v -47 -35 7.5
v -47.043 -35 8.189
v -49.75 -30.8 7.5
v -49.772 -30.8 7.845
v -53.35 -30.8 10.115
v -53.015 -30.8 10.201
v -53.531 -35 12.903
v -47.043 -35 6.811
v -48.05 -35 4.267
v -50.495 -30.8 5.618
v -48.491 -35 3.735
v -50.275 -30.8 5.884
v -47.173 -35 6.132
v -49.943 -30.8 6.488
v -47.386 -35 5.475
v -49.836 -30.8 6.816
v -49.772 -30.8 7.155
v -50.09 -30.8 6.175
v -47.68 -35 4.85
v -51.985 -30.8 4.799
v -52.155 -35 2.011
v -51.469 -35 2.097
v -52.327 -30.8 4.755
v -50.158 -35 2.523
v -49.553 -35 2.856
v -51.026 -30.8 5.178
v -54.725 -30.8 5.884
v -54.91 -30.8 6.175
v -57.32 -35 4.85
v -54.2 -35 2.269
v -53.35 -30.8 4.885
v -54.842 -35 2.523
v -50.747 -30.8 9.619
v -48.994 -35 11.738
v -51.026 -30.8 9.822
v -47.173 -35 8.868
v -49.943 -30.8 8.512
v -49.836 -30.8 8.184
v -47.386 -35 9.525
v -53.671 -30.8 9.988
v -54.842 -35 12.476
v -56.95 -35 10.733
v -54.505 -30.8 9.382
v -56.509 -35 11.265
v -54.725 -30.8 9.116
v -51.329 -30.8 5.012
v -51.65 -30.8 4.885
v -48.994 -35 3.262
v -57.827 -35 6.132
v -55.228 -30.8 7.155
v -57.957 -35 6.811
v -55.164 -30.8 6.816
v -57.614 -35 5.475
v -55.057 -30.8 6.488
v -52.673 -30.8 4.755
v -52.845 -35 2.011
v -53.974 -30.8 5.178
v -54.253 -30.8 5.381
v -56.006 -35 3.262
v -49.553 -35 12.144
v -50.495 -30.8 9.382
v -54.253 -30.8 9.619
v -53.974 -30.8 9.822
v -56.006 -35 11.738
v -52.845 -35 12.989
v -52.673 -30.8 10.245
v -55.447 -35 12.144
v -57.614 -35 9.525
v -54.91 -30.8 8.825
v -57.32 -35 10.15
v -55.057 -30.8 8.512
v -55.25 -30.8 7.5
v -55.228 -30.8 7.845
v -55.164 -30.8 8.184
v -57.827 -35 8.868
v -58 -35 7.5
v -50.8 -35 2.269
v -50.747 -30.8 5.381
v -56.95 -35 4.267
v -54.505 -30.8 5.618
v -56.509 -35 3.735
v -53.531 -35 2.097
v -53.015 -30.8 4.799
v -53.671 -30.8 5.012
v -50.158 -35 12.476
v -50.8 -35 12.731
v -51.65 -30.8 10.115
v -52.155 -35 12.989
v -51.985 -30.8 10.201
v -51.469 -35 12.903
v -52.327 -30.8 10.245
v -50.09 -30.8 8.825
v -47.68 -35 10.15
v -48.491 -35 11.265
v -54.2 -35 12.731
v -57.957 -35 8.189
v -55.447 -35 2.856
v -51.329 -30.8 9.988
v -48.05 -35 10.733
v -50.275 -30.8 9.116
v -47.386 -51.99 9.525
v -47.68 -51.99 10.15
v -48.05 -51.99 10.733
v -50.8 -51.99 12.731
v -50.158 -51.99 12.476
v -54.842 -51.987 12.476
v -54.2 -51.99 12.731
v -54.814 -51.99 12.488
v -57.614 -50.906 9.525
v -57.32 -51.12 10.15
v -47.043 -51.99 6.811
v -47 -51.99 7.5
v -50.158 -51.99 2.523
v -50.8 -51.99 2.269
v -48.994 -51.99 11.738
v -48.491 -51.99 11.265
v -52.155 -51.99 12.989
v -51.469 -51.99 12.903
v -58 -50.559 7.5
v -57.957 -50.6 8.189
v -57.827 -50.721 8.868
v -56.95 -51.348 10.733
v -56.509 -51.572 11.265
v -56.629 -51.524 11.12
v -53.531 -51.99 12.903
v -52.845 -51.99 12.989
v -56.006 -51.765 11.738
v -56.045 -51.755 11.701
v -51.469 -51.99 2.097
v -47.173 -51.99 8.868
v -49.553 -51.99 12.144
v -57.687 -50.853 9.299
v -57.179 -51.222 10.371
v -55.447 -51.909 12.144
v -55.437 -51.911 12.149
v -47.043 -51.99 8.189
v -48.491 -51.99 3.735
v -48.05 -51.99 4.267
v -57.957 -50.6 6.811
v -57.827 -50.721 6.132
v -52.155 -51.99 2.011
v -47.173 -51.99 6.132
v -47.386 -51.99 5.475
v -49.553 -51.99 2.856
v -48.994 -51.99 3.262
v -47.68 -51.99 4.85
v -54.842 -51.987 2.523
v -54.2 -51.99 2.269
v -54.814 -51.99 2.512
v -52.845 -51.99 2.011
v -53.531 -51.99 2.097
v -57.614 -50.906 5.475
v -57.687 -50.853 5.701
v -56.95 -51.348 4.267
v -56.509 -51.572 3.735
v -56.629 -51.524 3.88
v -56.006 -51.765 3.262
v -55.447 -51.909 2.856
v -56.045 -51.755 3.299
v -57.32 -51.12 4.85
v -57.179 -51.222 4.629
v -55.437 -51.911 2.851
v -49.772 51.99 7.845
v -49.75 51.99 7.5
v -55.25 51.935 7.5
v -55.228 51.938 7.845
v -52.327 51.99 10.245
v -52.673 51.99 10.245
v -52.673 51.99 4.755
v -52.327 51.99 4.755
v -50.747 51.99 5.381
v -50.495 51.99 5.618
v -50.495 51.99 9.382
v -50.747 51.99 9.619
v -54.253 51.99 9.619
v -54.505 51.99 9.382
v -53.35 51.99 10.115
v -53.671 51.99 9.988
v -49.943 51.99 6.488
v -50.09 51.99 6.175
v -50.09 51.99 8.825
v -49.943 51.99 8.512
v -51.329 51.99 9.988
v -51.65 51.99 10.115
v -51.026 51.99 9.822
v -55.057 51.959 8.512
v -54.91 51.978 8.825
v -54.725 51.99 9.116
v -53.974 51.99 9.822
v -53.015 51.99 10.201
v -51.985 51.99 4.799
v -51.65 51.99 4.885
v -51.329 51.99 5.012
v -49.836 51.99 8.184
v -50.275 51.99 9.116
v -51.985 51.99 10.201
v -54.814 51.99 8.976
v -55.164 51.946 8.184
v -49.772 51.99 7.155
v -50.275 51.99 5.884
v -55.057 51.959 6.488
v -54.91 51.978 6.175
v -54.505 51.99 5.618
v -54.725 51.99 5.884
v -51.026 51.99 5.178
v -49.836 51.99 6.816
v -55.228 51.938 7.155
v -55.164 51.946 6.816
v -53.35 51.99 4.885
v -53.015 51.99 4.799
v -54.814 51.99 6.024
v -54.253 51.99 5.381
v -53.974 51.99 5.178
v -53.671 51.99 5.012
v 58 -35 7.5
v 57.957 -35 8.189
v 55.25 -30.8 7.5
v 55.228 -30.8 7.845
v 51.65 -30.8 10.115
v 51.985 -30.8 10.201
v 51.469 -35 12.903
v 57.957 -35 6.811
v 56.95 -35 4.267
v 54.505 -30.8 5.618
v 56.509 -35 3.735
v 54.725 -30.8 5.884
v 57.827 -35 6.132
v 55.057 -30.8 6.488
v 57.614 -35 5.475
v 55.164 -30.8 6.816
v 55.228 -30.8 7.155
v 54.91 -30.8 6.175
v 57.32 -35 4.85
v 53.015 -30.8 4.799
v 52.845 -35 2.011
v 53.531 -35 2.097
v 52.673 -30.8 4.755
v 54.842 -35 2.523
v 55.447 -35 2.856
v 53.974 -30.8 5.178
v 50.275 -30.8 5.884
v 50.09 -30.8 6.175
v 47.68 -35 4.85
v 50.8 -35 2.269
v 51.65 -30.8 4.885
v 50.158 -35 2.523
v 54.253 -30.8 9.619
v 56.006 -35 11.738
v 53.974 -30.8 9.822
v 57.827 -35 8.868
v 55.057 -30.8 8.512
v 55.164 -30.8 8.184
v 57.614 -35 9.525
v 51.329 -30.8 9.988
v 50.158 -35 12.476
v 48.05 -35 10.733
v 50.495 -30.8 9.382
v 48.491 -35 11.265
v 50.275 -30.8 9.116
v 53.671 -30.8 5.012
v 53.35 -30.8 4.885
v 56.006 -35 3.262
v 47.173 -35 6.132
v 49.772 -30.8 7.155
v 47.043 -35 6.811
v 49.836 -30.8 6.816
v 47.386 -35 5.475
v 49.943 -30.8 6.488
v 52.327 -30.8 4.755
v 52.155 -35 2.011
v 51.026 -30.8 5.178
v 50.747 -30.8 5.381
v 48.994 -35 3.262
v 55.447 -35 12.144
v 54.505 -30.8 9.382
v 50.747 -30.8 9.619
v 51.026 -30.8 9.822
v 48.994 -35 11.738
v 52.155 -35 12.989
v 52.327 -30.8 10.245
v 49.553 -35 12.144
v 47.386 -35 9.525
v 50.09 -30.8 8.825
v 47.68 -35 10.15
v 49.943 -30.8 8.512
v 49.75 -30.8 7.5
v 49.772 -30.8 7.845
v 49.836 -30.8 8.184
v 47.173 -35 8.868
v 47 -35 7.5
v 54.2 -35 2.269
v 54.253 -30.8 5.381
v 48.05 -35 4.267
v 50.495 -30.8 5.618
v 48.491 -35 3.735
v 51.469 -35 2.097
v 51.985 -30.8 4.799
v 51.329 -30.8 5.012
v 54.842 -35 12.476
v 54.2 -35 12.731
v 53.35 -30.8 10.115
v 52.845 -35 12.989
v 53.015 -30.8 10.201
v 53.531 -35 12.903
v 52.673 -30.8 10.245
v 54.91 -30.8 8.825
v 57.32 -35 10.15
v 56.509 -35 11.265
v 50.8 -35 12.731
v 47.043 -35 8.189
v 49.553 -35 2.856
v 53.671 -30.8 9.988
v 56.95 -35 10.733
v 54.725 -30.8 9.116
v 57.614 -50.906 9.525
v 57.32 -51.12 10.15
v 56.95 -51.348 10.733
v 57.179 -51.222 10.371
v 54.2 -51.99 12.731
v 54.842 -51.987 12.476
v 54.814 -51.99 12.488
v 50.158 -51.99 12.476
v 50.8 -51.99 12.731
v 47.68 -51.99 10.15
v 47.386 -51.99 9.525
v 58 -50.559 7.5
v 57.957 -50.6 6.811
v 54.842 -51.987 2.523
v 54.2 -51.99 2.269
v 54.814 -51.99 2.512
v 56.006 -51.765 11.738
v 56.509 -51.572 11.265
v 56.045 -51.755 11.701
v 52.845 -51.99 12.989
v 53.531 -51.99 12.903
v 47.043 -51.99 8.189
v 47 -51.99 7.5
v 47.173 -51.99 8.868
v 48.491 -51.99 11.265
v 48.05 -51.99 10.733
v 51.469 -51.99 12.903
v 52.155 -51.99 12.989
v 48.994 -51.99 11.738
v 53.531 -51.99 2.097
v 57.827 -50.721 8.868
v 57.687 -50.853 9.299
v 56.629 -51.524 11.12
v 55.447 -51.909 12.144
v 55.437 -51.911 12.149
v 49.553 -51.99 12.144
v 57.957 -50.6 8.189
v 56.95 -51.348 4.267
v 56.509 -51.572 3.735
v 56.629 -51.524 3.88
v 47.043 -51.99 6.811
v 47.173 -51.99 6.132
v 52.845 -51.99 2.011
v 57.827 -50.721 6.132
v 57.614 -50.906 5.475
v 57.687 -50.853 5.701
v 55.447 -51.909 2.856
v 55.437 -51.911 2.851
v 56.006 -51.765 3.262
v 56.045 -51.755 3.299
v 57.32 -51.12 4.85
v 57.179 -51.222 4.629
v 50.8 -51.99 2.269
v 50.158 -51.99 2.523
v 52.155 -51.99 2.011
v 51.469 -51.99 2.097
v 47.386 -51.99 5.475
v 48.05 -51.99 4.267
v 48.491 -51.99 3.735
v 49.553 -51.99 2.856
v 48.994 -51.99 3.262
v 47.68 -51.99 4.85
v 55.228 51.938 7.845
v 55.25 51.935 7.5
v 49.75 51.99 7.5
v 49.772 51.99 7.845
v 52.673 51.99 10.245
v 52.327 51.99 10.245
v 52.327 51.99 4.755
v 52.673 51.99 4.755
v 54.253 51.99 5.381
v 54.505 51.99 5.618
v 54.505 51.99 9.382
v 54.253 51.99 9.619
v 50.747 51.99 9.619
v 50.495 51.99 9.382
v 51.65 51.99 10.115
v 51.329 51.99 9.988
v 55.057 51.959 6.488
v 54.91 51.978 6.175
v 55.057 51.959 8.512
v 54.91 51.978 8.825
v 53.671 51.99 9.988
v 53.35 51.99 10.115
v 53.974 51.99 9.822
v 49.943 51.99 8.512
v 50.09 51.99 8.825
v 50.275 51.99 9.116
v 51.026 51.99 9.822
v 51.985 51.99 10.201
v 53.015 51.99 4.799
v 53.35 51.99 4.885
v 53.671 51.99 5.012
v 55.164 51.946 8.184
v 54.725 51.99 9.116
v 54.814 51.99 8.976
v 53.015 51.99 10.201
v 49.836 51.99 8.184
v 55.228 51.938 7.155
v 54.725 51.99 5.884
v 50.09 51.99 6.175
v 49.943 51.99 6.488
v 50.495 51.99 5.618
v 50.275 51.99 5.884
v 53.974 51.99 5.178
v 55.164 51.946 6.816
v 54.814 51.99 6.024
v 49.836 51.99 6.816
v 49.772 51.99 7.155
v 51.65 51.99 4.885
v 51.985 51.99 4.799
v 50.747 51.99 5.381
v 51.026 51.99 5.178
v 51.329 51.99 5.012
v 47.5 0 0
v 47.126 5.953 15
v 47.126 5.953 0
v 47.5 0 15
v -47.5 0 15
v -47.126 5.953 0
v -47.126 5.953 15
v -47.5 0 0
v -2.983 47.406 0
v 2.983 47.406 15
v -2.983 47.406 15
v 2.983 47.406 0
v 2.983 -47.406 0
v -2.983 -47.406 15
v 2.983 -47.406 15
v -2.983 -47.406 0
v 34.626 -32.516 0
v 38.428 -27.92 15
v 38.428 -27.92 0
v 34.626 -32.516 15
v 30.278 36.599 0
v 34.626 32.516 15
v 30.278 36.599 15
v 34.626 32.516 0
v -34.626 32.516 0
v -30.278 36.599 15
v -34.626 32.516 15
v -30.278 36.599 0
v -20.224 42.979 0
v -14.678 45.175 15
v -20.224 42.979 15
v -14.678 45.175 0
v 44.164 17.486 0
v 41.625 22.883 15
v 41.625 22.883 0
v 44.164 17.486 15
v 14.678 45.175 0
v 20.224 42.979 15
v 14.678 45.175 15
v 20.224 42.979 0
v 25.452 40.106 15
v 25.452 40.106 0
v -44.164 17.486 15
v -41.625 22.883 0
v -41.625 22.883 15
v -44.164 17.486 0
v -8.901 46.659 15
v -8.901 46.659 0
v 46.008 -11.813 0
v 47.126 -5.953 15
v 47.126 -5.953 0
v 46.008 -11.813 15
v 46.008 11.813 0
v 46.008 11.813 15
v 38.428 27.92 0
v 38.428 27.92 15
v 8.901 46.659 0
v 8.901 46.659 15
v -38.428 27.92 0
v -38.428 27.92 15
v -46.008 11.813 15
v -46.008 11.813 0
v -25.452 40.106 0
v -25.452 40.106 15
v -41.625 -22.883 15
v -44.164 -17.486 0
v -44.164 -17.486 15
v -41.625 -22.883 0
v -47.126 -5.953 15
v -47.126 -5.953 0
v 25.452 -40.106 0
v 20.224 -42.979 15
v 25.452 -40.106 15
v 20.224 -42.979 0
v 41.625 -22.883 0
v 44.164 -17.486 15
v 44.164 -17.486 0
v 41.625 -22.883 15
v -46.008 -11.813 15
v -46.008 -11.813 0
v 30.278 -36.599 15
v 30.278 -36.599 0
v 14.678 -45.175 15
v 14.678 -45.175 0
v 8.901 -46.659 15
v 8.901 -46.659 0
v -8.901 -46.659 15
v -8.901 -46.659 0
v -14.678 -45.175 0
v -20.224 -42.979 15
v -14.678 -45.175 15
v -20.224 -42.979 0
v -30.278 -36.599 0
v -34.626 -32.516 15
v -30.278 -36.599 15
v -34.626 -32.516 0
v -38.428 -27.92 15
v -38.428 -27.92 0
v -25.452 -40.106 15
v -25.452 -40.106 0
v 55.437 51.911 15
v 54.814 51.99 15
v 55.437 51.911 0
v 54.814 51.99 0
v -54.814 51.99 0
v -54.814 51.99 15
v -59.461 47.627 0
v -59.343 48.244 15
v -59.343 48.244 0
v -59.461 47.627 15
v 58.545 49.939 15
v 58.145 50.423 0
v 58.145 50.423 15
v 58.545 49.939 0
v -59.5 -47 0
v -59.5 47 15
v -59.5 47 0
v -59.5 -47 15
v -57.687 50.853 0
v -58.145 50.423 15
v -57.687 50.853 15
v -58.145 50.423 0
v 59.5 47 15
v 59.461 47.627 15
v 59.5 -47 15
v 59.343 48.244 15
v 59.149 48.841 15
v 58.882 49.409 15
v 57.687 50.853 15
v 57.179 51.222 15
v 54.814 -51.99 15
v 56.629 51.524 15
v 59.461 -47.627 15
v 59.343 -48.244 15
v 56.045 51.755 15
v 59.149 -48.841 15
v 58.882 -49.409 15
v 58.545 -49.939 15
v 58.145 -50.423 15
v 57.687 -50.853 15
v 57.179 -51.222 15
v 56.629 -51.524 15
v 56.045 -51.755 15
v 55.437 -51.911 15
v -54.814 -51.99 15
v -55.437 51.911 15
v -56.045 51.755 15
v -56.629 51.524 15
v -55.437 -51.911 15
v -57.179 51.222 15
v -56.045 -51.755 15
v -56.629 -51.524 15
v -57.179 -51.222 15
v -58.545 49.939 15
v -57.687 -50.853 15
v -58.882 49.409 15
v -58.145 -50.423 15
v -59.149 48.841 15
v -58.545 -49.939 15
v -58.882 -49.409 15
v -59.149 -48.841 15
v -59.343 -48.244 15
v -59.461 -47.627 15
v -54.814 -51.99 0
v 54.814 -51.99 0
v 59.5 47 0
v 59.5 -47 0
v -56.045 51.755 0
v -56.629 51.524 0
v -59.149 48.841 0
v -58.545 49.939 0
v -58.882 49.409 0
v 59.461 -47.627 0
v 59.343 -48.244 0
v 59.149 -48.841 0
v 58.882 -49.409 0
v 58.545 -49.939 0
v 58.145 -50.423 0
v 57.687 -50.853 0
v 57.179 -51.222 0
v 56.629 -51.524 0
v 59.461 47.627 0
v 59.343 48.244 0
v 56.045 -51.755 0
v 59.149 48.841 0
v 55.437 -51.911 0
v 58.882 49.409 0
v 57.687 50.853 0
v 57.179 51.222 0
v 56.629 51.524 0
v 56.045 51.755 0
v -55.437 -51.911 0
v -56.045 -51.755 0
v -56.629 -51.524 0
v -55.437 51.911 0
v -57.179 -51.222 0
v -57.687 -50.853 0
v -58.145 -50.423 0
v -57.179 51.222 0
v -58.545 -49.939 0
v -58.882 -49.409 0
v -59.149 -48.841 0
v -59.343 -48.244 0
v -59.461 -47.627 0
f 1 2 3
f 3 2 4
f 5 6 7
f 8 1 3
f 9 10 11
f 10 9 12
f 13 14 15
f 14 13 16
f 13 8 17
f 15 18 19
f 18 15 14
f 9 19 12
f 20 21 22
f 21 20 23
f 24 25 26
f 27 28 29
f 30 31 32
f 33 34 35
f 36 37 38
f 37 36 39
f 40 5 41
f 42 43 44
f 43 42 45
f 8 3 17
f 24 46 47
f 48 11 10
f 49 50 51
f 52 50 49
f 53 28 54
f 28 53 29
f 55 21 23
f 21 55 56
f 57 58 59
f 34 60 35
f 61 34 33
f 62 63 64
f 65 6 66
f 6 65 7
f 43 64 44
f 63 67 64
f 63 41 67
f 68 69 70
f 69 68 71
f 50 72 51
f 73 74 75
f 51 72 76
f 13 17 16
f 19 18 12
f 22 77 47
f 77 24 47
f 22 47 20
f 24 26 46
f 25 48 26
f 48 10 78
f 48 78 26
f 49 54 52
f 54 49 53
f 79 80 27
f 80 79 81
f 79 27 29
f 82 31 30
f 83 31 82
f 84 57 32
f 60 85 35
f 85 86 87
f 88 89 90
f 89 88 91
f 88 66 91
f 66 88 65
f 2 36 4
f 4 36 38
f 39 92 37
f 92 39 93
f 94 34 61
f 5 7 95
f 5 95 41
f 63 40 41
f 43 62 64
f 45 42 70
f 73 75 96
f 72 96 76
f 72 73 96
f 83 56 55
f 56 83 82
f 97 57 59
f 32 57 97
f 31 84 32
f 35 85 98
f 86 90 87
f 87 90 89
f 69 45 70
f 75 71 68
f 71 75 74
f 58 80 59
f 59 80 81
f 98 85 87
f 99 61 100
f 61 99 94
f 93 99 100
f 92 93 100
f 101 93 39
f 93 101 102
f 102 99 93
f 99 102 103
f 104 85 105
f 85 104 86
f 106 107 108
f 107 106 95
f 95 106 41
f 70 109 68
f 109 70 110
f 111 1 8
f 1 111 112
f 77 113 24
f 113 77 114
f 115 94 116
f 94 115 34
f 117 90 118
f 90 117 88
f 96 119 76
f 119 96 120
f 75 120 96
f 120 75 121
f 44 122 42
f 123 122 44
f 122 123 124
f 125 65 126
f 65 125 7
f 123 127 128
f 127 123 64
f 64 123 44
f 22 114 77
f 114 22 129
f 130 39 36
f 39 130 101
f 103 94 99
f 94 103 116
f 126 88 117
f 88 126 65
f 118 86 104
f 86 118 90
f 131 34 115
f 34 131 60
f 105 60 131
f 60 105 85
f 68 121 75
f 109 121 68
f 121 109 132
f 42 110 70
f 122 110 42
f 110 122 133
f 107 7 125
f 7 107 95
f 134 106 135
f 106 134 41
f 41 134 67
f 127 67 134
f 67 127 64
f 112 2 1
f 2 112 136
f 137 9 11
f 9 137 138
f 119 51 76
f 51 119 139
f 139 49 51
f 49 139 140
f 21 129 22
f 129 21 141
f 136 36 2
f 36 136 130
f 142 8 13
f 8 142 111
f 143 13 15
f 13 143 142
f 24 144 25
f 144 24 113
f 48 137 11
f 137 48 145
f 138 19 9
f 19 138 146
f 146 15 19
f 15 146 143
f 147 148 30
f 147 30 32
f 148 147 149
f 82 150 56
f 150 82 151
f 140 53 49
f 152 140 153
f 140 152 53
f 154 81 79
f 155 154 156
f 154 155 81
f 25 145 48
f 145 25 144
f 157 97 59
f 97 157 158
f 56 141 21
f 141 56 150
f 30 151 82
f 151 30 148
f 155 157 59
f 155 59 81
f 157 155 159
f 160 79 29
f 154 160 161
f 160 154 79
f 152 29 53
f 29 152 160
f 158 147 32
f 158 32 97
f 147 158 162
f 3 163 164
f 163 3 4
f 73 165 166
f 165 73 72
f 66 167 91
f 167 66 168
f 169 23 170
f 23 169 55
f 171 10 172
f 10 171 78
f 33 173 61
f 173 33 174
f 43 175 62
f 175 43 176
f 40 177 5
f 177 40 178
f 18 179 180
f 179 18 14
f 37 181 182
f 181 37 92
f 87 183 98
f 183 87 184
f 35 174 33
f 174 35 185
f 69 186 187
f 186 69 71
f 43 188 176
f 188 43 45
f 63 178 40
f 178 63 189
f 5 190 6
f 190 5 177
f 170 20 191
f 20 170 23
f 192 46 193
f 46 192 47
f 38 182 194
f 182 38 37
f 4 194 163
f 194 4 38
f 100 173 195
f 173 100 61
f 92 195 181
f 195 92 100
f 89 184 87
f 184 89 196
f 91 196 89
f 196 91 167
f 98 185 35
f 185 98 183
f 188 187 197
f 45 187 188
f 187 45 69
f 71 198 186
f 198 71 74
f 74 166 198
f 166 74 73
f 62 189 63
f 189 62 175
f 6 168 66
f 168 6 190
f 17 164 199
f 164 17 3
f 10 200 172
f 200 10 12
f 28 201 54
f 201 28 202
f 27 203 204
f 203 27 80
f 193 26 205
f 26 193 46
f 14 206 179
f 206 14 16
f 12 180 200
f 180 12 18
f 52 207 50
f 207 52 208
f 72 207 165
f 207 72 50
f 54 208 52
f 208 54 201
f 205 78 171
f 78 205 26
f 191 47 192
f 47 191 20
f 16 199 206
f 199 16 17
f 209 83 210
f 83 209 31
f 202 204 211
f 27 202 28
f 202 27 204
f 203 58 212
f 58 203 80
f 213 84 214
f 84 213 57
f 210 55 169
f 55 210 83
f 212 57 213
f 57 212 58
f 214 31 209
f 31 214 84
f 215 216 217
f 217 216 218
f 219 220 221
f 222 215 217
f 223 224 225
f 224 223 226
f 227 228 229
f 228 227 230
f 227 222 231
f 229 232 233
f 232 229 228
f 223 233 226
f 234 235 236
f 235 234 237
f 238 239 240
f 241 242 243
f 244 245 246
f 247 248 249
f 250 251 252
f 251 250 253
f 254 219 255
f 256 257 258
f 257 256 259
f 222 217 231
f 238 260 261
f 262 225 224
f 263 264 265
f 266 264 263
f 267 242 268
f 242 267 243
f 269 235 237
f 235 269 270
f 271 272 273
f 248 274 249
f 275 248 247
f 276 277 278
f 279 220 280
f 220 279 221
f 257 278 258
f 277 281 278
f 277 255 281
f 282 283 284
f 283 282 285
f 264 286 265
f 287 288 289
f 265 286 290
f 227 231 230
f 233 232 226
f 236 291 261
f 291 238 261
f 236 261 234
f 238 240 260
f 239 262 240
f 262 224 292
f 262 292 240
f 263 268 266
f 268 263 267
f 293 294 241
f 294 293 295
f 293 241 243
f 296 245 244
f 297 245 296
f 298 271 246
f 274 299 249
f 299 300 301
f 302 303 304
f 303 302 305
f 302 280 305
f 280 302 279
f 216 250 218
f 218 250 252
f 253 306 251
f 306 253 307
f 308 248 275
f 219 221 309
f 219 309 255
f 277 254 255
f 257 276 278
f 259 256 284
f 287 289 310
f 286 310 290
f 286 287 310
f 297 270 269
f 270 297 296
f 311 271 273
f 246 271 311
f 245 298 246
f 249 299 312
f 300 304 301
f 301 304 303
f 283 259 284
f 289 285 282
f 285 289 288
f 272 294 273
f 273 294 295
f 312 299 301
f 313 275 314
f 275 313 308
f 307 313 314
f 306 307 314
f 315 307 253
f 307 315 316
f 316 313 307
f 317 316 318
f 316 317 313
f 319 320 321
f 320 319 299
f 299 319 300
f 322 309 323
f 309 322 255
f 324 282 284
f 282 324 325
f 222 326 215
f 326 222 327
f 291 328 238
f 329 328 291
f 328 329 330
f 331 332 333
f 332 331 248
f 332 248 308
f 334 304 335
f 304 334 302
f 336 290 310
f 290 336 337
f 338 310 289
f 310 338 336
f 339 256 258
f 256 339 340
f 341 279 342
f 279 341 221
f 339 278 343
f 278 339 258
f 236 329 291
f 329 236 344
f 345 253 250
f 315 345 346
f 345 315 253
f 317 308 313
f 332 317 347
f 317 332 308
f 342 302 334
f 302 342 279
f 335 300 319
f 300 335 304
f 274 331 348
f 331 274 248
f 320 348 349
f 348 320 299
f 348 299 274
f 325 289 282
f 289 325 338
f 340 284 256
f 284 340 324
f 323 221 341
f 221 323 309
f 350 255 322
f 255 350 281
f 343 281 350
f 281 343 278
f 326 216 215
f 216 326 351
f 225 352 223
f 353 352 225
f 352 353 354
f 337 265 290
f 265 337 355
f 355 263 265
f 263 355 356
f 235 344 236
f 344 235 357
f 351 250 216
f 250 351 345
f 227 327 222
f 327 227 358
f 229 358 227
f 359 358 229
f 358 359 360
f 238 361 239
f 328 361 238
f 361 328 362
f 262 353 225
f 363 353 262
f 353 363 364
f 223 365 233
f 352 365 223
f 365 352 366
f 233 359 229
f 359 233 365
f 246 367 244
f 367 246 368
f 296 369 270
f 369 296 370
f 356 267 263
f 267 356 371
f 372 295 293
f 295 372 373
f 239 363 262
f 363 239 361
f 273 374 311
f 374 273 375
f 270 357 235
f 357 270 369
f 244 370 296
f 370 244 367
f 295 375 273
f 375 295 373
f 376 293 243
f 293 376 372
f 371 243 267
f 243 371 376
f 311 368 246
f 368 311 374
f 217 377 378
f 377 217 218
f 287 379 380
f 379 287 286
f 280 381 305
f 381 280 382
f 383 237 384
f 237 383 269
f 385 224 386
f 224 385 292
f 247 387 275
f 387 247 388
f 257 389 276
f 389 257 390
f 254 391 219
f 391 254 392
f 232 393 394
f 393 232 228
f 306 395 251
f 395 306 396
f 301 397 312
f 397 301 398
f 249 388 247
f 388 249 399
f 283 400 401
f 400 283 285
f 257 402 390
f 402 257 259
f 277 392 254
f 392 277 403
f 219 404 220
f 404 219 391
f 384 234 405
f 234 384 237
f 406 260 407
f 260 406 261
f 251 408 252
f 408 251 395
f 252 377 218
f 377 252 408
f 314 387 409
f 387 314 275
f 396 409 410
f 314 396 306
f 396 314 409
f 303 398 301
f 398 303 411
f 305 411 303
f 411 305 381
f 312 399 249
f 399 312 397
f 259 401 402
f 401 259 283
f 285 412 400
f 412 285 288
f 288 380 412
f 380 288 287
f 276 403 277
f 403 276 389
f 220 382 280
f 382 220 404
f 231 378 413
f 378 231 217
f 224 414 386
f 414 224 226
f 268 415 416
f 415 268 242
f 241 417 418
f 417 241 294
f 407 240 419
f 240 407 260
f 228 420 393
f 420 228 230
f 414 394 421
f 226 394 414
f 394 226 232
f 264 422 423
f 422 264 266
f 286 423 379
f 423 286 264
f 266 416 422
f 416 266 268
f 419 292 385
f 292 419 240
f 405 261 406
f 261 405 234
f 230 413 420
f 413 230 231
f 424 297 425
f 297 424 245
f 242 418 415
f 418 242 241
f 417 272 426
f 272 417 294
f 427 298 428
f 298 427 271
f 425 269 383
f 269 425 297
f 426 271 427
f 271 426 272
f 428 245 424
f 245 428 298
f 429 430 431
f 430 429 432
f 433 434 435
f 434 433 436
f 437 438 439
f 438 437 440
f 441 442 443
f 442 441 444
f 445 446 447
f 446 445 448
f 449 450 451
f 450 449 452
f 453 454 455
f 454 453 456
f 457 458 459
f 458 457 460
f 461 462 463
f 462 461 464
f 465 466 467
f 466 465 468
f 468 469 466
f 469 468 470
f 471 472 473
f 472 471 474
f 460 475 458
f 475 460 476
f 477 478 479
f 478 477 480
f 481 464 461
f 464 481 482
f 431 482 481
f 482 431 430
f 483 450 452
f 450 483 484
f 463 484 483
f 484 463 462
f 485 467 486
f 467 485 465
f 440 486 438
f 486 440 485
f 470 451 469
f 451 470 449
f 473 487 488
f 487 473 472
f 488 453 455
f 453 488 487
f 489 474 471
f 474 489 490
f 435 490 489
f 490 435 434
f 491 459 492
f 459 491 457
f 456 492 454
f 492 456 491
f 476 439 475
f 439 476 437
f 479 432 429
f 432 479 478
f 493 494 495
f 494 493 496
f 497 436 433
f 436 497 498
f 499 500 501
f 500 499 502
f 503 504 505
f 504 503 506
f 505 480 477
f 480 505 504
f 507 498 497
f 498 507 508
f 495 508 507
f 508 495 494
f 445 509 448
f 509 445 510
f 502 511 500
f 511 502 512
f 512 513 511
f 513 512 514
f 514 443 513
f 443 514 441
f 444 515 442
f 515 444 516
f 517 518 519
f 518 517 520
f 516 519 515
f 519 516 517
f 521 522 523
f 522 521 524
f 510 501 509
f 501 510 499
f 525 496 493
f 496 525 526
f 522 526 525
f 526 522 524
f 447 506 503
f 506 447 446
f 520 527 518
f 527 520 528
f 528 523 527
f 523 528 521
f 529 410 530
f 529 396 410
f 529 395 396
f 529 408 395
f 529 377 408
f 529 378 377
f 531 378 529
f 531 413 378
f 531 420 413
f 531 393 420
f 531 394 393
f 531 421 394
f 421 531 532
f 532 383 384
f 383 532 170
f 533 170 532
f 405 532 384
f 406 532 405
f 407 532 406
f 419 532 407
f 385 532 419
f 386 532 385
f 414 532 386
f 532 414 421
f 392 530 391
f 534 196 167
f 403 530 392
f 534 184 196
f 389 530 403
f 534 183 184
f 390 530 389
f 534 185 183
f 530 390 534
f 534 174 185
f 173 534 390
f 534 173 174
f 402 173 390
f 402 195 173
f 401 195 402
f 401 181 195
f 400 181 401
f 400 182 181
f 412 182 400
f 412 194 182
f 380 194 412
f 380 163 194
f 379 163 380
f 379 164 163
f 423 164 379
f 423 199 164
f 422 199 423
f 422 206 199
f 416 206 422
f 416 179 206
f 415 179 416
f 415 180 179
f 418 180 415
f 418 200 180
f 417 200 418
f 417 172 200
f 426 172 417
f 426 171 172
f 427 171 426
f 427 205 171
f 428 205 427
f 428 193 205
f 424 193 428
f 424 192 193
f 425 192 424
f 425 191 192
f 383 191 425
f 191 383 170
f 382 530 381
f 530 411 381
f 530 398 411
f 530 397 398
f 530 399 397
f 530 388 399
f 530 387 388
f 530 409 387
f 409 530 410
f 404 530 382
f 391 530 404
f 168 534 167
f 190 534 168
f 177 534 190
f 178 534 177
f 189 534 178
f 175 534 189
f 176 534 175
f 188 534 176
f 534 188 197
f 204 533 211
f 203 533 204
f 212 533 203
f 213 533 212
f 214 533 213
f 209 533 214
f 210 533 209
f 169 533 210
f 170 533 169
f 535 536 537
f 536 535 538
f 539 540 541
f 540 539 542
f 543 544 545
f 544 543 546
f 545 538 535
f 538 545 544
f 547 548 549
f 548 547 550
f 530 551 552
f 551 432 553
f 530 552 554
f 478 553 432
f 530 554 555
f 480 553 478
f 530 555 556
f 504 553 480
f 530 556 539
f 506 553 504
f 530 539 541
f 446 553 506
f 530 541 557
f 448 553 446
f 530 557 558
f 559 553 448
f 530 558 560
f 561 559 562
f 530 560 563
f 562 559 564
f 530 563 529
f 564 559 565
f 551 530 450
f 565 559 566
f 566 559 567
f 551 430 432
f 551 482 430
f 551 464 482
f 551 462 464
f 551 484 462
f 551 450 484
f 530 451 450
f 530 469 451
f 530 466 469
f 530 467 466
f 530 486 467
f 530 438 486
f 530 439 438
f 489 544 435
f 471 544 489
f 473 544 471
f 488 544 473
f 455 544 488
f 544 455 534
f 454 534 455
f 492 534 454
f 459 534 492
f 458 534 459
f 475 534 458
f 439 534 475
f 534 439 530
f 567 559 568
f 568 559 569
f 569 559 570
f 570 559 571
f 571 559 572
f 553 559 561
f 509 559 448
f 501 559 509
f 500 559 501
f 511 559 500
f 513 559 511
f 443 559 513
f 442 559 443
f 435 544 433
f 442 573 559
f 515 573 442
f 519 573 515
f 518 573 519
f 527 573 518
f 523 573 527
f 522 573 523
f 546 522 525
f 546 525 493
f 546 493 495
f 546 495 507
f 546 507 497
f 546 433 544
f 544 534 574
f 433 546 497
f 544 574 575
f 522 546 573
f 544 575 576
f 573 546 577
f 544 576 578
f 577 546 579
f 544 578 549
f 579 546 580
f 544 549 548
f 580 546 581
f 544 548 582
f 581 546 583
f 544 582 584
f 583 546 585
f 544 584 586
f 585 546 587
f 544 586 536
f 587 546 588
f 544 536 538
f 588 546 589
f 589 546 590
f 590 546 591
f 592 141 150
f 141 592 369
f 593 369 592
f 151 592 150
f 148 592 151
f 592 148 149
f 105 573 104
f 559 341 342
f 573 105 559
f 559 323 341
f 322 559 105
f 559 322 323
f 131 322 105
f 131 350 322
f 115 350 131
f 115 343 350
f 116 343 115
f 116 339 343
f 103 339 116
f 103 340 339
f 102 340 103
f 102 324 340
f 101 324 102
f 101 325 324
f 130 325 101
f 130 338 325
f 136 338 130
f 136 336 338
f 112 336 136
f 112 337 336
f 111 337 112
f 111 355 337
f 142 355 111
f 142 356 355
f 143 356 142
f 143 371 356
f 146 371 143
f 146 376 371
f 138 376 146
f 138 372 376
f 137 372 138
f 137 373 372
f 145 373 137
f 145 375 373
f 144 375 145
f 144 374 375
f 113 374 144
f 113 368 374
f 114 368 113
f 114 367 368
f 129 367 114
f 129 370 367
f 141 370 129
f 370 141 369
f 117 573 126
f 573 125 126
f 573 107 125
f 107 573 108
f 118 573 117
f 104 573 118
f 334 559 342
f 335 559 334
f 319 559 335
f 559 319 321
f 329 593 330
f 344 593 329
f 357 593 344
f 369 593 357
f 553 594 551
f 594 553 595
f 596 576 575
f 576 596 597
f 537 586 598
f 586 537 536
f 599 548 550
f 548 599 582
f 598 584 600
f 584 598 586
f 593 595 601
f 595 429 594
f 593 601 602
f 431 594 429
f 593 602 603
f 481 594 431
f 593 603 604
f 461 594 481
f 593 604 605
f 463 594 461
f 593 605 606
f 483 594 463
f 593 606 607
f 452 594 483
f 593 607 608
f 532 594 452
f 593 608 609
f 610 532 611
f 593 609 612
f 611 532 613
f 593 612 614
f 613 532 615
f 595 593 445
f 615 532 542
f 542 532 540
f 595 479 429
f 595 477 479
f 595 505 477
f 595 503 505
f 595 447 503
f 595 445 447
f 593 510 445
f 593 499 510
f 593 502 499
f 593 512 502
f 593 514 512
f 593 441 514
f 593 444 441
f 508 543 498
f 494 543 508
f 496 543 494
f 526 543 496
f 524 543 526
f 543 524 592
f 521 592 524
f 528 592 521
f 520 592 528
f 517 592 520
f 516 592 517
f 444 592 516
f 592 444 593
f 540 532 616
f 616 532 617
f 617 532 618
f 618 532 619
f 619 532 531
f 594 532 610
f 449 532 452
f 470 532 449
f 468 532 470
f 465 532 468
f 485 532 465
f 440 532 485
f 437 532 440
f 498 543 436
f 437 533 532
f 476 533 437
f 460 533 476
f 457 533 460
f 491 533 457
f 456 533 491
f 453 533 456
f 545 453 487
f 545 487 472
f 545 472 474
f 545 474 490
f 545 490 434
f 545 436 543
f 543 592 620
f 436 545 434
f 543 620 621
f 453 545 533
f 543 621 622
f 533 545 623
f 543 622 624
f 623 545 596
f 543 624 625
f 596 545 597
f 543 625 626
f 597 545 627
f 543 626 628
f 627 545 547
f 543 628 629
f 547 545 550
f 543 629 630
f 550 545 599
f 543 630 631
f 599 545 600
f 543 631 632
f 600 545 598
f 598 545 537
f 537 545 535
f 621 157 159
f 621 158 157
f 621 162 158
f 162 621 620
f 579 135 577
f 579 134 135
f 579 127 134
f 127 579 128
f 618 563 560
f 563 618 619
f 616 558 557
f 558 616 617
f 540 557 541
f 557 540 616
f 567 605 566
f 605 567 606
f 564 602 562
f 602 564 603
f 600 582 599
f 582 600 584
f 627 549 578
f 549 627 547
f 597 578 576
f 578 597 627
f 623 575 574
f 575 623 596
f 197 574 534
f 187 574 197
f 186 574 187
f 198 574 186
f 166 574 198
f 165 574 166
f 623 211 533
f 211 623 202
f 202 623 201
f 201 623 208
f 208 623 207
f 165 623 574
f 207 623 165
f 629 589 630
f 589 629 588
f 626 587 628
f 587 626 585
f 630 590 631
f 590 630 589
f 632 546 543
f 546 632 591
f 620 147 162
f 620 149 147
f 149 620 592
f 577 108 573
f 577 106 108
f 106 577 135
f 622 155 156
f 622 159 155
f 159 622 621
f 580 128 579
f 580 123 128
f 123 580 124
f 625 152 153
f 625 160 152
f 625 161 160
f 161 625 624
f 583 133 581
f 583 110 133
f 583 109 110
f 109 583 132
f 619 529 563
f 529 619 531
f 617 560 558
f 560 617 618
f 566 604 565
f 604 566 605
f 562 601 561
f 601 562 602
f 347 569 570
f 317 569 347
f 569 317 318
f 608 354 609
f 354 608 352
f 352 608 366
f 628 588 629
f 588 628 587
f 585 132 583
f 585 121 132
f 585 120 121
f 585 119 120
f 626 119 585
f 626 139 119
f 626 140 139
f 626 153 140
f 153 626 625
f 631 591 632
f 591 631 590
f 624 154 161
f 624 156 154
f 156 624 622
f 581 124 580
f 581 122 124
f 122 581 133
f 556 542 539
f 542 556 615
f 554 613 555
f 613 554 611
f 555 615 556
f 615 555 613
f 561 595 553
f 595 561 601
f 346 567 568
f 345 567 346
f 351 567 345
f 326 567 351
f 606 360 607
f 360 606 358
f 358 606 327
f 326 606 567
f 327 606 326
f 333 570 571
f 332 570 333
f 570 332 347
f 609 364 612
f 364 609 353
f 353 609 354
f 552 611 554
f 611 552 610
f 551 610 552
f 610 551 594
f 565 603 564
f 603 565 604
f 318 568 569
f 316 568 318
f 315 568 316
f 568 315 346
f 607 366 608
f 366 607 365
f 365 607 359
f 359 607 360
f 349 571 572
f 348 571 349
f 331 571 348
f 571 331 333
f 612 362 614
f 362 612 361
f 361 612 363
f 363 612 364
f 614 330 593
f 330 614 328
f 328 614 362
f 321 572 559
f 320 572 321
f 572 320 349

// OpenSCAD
$fn = 50;


difference() {
	union() {
		hull() {
			translate(v = [-54.5000000000, 47.0000000000, 0]) {
				cylinder(h = 15, r = 5);
			}
			translate(v = [54.5000000000, 47.0000000000, 0]) {
				cylinder(h = 15, r = 5);
			}
			translate(v = [-54.5000000000, -47.0000000000, 0]) {
				cylinder(h = 15, r = 5);
			}
			translate(v = [54.5000000000, -47.0000000000, 0]) {
				cylinder(h = 15, r = 5);
			}
		}
	}
	union() {
		translate(v = [-52.5000000000, -35.0000000000, 7.5000000000]) {
			rotate(a = [90, 0, 0]) {
				difference() {
					union() {
						#translate(v = [0, 0, -100.0000000000]) {
							cylinder(h = 100, r = 2.2500000000);
						}
						#translate(v = [0, 0, -4.2000000000]) {
							cylinder(h = 4.2000000000, r1 = 2.7500000000, r2 = 5.5000000000);
						}
						#cylinder(h = 250, r = 5.5000000000);
						#translate(v = [0, 0, -100.0000000000]) {
							cylinder(h = 100, r = 2.7500000000);
						}
						#translate(v = [0, 0, -100.0000000000]) {
							cylinder(h = 100, r = 2.2500000000);
						}
					}
					union();
				}
			}
		}
		translate(v = [52.5000000000, -35.0000000000, 7.5000000000]) {
			rotate(a = [90, 0, 0]) {
				difference() {
					union() {
						#translate(v = [0, 0, -100.0000000000]) {
							cylinder(h = 100, r = 2.2500000000);
						}
						#translate(v = [0, 0, -4.2000000000]) {
							cylinder(h = 4.2000000000, r1 = 2.7500000000, r2 = 5.5000000000);
						}
						#cylinder(h = 250, r = 5.5000000000);
						#translate(v = [0, 0, -100.0000000000]) {
							cylinder(h = 100, r = 2.7500000000);
						}
						#translate(v = [0, 0, -100.0000000000]) {
							cylinder(h = 100, r = 2.2500000000);
						}
					}
					union();
				}
			}
		}
		translate(v = [0, 0, -125.0000000000]) {
			cylinder(h = 250, r = 47.5000000000);
		}
	}
}
